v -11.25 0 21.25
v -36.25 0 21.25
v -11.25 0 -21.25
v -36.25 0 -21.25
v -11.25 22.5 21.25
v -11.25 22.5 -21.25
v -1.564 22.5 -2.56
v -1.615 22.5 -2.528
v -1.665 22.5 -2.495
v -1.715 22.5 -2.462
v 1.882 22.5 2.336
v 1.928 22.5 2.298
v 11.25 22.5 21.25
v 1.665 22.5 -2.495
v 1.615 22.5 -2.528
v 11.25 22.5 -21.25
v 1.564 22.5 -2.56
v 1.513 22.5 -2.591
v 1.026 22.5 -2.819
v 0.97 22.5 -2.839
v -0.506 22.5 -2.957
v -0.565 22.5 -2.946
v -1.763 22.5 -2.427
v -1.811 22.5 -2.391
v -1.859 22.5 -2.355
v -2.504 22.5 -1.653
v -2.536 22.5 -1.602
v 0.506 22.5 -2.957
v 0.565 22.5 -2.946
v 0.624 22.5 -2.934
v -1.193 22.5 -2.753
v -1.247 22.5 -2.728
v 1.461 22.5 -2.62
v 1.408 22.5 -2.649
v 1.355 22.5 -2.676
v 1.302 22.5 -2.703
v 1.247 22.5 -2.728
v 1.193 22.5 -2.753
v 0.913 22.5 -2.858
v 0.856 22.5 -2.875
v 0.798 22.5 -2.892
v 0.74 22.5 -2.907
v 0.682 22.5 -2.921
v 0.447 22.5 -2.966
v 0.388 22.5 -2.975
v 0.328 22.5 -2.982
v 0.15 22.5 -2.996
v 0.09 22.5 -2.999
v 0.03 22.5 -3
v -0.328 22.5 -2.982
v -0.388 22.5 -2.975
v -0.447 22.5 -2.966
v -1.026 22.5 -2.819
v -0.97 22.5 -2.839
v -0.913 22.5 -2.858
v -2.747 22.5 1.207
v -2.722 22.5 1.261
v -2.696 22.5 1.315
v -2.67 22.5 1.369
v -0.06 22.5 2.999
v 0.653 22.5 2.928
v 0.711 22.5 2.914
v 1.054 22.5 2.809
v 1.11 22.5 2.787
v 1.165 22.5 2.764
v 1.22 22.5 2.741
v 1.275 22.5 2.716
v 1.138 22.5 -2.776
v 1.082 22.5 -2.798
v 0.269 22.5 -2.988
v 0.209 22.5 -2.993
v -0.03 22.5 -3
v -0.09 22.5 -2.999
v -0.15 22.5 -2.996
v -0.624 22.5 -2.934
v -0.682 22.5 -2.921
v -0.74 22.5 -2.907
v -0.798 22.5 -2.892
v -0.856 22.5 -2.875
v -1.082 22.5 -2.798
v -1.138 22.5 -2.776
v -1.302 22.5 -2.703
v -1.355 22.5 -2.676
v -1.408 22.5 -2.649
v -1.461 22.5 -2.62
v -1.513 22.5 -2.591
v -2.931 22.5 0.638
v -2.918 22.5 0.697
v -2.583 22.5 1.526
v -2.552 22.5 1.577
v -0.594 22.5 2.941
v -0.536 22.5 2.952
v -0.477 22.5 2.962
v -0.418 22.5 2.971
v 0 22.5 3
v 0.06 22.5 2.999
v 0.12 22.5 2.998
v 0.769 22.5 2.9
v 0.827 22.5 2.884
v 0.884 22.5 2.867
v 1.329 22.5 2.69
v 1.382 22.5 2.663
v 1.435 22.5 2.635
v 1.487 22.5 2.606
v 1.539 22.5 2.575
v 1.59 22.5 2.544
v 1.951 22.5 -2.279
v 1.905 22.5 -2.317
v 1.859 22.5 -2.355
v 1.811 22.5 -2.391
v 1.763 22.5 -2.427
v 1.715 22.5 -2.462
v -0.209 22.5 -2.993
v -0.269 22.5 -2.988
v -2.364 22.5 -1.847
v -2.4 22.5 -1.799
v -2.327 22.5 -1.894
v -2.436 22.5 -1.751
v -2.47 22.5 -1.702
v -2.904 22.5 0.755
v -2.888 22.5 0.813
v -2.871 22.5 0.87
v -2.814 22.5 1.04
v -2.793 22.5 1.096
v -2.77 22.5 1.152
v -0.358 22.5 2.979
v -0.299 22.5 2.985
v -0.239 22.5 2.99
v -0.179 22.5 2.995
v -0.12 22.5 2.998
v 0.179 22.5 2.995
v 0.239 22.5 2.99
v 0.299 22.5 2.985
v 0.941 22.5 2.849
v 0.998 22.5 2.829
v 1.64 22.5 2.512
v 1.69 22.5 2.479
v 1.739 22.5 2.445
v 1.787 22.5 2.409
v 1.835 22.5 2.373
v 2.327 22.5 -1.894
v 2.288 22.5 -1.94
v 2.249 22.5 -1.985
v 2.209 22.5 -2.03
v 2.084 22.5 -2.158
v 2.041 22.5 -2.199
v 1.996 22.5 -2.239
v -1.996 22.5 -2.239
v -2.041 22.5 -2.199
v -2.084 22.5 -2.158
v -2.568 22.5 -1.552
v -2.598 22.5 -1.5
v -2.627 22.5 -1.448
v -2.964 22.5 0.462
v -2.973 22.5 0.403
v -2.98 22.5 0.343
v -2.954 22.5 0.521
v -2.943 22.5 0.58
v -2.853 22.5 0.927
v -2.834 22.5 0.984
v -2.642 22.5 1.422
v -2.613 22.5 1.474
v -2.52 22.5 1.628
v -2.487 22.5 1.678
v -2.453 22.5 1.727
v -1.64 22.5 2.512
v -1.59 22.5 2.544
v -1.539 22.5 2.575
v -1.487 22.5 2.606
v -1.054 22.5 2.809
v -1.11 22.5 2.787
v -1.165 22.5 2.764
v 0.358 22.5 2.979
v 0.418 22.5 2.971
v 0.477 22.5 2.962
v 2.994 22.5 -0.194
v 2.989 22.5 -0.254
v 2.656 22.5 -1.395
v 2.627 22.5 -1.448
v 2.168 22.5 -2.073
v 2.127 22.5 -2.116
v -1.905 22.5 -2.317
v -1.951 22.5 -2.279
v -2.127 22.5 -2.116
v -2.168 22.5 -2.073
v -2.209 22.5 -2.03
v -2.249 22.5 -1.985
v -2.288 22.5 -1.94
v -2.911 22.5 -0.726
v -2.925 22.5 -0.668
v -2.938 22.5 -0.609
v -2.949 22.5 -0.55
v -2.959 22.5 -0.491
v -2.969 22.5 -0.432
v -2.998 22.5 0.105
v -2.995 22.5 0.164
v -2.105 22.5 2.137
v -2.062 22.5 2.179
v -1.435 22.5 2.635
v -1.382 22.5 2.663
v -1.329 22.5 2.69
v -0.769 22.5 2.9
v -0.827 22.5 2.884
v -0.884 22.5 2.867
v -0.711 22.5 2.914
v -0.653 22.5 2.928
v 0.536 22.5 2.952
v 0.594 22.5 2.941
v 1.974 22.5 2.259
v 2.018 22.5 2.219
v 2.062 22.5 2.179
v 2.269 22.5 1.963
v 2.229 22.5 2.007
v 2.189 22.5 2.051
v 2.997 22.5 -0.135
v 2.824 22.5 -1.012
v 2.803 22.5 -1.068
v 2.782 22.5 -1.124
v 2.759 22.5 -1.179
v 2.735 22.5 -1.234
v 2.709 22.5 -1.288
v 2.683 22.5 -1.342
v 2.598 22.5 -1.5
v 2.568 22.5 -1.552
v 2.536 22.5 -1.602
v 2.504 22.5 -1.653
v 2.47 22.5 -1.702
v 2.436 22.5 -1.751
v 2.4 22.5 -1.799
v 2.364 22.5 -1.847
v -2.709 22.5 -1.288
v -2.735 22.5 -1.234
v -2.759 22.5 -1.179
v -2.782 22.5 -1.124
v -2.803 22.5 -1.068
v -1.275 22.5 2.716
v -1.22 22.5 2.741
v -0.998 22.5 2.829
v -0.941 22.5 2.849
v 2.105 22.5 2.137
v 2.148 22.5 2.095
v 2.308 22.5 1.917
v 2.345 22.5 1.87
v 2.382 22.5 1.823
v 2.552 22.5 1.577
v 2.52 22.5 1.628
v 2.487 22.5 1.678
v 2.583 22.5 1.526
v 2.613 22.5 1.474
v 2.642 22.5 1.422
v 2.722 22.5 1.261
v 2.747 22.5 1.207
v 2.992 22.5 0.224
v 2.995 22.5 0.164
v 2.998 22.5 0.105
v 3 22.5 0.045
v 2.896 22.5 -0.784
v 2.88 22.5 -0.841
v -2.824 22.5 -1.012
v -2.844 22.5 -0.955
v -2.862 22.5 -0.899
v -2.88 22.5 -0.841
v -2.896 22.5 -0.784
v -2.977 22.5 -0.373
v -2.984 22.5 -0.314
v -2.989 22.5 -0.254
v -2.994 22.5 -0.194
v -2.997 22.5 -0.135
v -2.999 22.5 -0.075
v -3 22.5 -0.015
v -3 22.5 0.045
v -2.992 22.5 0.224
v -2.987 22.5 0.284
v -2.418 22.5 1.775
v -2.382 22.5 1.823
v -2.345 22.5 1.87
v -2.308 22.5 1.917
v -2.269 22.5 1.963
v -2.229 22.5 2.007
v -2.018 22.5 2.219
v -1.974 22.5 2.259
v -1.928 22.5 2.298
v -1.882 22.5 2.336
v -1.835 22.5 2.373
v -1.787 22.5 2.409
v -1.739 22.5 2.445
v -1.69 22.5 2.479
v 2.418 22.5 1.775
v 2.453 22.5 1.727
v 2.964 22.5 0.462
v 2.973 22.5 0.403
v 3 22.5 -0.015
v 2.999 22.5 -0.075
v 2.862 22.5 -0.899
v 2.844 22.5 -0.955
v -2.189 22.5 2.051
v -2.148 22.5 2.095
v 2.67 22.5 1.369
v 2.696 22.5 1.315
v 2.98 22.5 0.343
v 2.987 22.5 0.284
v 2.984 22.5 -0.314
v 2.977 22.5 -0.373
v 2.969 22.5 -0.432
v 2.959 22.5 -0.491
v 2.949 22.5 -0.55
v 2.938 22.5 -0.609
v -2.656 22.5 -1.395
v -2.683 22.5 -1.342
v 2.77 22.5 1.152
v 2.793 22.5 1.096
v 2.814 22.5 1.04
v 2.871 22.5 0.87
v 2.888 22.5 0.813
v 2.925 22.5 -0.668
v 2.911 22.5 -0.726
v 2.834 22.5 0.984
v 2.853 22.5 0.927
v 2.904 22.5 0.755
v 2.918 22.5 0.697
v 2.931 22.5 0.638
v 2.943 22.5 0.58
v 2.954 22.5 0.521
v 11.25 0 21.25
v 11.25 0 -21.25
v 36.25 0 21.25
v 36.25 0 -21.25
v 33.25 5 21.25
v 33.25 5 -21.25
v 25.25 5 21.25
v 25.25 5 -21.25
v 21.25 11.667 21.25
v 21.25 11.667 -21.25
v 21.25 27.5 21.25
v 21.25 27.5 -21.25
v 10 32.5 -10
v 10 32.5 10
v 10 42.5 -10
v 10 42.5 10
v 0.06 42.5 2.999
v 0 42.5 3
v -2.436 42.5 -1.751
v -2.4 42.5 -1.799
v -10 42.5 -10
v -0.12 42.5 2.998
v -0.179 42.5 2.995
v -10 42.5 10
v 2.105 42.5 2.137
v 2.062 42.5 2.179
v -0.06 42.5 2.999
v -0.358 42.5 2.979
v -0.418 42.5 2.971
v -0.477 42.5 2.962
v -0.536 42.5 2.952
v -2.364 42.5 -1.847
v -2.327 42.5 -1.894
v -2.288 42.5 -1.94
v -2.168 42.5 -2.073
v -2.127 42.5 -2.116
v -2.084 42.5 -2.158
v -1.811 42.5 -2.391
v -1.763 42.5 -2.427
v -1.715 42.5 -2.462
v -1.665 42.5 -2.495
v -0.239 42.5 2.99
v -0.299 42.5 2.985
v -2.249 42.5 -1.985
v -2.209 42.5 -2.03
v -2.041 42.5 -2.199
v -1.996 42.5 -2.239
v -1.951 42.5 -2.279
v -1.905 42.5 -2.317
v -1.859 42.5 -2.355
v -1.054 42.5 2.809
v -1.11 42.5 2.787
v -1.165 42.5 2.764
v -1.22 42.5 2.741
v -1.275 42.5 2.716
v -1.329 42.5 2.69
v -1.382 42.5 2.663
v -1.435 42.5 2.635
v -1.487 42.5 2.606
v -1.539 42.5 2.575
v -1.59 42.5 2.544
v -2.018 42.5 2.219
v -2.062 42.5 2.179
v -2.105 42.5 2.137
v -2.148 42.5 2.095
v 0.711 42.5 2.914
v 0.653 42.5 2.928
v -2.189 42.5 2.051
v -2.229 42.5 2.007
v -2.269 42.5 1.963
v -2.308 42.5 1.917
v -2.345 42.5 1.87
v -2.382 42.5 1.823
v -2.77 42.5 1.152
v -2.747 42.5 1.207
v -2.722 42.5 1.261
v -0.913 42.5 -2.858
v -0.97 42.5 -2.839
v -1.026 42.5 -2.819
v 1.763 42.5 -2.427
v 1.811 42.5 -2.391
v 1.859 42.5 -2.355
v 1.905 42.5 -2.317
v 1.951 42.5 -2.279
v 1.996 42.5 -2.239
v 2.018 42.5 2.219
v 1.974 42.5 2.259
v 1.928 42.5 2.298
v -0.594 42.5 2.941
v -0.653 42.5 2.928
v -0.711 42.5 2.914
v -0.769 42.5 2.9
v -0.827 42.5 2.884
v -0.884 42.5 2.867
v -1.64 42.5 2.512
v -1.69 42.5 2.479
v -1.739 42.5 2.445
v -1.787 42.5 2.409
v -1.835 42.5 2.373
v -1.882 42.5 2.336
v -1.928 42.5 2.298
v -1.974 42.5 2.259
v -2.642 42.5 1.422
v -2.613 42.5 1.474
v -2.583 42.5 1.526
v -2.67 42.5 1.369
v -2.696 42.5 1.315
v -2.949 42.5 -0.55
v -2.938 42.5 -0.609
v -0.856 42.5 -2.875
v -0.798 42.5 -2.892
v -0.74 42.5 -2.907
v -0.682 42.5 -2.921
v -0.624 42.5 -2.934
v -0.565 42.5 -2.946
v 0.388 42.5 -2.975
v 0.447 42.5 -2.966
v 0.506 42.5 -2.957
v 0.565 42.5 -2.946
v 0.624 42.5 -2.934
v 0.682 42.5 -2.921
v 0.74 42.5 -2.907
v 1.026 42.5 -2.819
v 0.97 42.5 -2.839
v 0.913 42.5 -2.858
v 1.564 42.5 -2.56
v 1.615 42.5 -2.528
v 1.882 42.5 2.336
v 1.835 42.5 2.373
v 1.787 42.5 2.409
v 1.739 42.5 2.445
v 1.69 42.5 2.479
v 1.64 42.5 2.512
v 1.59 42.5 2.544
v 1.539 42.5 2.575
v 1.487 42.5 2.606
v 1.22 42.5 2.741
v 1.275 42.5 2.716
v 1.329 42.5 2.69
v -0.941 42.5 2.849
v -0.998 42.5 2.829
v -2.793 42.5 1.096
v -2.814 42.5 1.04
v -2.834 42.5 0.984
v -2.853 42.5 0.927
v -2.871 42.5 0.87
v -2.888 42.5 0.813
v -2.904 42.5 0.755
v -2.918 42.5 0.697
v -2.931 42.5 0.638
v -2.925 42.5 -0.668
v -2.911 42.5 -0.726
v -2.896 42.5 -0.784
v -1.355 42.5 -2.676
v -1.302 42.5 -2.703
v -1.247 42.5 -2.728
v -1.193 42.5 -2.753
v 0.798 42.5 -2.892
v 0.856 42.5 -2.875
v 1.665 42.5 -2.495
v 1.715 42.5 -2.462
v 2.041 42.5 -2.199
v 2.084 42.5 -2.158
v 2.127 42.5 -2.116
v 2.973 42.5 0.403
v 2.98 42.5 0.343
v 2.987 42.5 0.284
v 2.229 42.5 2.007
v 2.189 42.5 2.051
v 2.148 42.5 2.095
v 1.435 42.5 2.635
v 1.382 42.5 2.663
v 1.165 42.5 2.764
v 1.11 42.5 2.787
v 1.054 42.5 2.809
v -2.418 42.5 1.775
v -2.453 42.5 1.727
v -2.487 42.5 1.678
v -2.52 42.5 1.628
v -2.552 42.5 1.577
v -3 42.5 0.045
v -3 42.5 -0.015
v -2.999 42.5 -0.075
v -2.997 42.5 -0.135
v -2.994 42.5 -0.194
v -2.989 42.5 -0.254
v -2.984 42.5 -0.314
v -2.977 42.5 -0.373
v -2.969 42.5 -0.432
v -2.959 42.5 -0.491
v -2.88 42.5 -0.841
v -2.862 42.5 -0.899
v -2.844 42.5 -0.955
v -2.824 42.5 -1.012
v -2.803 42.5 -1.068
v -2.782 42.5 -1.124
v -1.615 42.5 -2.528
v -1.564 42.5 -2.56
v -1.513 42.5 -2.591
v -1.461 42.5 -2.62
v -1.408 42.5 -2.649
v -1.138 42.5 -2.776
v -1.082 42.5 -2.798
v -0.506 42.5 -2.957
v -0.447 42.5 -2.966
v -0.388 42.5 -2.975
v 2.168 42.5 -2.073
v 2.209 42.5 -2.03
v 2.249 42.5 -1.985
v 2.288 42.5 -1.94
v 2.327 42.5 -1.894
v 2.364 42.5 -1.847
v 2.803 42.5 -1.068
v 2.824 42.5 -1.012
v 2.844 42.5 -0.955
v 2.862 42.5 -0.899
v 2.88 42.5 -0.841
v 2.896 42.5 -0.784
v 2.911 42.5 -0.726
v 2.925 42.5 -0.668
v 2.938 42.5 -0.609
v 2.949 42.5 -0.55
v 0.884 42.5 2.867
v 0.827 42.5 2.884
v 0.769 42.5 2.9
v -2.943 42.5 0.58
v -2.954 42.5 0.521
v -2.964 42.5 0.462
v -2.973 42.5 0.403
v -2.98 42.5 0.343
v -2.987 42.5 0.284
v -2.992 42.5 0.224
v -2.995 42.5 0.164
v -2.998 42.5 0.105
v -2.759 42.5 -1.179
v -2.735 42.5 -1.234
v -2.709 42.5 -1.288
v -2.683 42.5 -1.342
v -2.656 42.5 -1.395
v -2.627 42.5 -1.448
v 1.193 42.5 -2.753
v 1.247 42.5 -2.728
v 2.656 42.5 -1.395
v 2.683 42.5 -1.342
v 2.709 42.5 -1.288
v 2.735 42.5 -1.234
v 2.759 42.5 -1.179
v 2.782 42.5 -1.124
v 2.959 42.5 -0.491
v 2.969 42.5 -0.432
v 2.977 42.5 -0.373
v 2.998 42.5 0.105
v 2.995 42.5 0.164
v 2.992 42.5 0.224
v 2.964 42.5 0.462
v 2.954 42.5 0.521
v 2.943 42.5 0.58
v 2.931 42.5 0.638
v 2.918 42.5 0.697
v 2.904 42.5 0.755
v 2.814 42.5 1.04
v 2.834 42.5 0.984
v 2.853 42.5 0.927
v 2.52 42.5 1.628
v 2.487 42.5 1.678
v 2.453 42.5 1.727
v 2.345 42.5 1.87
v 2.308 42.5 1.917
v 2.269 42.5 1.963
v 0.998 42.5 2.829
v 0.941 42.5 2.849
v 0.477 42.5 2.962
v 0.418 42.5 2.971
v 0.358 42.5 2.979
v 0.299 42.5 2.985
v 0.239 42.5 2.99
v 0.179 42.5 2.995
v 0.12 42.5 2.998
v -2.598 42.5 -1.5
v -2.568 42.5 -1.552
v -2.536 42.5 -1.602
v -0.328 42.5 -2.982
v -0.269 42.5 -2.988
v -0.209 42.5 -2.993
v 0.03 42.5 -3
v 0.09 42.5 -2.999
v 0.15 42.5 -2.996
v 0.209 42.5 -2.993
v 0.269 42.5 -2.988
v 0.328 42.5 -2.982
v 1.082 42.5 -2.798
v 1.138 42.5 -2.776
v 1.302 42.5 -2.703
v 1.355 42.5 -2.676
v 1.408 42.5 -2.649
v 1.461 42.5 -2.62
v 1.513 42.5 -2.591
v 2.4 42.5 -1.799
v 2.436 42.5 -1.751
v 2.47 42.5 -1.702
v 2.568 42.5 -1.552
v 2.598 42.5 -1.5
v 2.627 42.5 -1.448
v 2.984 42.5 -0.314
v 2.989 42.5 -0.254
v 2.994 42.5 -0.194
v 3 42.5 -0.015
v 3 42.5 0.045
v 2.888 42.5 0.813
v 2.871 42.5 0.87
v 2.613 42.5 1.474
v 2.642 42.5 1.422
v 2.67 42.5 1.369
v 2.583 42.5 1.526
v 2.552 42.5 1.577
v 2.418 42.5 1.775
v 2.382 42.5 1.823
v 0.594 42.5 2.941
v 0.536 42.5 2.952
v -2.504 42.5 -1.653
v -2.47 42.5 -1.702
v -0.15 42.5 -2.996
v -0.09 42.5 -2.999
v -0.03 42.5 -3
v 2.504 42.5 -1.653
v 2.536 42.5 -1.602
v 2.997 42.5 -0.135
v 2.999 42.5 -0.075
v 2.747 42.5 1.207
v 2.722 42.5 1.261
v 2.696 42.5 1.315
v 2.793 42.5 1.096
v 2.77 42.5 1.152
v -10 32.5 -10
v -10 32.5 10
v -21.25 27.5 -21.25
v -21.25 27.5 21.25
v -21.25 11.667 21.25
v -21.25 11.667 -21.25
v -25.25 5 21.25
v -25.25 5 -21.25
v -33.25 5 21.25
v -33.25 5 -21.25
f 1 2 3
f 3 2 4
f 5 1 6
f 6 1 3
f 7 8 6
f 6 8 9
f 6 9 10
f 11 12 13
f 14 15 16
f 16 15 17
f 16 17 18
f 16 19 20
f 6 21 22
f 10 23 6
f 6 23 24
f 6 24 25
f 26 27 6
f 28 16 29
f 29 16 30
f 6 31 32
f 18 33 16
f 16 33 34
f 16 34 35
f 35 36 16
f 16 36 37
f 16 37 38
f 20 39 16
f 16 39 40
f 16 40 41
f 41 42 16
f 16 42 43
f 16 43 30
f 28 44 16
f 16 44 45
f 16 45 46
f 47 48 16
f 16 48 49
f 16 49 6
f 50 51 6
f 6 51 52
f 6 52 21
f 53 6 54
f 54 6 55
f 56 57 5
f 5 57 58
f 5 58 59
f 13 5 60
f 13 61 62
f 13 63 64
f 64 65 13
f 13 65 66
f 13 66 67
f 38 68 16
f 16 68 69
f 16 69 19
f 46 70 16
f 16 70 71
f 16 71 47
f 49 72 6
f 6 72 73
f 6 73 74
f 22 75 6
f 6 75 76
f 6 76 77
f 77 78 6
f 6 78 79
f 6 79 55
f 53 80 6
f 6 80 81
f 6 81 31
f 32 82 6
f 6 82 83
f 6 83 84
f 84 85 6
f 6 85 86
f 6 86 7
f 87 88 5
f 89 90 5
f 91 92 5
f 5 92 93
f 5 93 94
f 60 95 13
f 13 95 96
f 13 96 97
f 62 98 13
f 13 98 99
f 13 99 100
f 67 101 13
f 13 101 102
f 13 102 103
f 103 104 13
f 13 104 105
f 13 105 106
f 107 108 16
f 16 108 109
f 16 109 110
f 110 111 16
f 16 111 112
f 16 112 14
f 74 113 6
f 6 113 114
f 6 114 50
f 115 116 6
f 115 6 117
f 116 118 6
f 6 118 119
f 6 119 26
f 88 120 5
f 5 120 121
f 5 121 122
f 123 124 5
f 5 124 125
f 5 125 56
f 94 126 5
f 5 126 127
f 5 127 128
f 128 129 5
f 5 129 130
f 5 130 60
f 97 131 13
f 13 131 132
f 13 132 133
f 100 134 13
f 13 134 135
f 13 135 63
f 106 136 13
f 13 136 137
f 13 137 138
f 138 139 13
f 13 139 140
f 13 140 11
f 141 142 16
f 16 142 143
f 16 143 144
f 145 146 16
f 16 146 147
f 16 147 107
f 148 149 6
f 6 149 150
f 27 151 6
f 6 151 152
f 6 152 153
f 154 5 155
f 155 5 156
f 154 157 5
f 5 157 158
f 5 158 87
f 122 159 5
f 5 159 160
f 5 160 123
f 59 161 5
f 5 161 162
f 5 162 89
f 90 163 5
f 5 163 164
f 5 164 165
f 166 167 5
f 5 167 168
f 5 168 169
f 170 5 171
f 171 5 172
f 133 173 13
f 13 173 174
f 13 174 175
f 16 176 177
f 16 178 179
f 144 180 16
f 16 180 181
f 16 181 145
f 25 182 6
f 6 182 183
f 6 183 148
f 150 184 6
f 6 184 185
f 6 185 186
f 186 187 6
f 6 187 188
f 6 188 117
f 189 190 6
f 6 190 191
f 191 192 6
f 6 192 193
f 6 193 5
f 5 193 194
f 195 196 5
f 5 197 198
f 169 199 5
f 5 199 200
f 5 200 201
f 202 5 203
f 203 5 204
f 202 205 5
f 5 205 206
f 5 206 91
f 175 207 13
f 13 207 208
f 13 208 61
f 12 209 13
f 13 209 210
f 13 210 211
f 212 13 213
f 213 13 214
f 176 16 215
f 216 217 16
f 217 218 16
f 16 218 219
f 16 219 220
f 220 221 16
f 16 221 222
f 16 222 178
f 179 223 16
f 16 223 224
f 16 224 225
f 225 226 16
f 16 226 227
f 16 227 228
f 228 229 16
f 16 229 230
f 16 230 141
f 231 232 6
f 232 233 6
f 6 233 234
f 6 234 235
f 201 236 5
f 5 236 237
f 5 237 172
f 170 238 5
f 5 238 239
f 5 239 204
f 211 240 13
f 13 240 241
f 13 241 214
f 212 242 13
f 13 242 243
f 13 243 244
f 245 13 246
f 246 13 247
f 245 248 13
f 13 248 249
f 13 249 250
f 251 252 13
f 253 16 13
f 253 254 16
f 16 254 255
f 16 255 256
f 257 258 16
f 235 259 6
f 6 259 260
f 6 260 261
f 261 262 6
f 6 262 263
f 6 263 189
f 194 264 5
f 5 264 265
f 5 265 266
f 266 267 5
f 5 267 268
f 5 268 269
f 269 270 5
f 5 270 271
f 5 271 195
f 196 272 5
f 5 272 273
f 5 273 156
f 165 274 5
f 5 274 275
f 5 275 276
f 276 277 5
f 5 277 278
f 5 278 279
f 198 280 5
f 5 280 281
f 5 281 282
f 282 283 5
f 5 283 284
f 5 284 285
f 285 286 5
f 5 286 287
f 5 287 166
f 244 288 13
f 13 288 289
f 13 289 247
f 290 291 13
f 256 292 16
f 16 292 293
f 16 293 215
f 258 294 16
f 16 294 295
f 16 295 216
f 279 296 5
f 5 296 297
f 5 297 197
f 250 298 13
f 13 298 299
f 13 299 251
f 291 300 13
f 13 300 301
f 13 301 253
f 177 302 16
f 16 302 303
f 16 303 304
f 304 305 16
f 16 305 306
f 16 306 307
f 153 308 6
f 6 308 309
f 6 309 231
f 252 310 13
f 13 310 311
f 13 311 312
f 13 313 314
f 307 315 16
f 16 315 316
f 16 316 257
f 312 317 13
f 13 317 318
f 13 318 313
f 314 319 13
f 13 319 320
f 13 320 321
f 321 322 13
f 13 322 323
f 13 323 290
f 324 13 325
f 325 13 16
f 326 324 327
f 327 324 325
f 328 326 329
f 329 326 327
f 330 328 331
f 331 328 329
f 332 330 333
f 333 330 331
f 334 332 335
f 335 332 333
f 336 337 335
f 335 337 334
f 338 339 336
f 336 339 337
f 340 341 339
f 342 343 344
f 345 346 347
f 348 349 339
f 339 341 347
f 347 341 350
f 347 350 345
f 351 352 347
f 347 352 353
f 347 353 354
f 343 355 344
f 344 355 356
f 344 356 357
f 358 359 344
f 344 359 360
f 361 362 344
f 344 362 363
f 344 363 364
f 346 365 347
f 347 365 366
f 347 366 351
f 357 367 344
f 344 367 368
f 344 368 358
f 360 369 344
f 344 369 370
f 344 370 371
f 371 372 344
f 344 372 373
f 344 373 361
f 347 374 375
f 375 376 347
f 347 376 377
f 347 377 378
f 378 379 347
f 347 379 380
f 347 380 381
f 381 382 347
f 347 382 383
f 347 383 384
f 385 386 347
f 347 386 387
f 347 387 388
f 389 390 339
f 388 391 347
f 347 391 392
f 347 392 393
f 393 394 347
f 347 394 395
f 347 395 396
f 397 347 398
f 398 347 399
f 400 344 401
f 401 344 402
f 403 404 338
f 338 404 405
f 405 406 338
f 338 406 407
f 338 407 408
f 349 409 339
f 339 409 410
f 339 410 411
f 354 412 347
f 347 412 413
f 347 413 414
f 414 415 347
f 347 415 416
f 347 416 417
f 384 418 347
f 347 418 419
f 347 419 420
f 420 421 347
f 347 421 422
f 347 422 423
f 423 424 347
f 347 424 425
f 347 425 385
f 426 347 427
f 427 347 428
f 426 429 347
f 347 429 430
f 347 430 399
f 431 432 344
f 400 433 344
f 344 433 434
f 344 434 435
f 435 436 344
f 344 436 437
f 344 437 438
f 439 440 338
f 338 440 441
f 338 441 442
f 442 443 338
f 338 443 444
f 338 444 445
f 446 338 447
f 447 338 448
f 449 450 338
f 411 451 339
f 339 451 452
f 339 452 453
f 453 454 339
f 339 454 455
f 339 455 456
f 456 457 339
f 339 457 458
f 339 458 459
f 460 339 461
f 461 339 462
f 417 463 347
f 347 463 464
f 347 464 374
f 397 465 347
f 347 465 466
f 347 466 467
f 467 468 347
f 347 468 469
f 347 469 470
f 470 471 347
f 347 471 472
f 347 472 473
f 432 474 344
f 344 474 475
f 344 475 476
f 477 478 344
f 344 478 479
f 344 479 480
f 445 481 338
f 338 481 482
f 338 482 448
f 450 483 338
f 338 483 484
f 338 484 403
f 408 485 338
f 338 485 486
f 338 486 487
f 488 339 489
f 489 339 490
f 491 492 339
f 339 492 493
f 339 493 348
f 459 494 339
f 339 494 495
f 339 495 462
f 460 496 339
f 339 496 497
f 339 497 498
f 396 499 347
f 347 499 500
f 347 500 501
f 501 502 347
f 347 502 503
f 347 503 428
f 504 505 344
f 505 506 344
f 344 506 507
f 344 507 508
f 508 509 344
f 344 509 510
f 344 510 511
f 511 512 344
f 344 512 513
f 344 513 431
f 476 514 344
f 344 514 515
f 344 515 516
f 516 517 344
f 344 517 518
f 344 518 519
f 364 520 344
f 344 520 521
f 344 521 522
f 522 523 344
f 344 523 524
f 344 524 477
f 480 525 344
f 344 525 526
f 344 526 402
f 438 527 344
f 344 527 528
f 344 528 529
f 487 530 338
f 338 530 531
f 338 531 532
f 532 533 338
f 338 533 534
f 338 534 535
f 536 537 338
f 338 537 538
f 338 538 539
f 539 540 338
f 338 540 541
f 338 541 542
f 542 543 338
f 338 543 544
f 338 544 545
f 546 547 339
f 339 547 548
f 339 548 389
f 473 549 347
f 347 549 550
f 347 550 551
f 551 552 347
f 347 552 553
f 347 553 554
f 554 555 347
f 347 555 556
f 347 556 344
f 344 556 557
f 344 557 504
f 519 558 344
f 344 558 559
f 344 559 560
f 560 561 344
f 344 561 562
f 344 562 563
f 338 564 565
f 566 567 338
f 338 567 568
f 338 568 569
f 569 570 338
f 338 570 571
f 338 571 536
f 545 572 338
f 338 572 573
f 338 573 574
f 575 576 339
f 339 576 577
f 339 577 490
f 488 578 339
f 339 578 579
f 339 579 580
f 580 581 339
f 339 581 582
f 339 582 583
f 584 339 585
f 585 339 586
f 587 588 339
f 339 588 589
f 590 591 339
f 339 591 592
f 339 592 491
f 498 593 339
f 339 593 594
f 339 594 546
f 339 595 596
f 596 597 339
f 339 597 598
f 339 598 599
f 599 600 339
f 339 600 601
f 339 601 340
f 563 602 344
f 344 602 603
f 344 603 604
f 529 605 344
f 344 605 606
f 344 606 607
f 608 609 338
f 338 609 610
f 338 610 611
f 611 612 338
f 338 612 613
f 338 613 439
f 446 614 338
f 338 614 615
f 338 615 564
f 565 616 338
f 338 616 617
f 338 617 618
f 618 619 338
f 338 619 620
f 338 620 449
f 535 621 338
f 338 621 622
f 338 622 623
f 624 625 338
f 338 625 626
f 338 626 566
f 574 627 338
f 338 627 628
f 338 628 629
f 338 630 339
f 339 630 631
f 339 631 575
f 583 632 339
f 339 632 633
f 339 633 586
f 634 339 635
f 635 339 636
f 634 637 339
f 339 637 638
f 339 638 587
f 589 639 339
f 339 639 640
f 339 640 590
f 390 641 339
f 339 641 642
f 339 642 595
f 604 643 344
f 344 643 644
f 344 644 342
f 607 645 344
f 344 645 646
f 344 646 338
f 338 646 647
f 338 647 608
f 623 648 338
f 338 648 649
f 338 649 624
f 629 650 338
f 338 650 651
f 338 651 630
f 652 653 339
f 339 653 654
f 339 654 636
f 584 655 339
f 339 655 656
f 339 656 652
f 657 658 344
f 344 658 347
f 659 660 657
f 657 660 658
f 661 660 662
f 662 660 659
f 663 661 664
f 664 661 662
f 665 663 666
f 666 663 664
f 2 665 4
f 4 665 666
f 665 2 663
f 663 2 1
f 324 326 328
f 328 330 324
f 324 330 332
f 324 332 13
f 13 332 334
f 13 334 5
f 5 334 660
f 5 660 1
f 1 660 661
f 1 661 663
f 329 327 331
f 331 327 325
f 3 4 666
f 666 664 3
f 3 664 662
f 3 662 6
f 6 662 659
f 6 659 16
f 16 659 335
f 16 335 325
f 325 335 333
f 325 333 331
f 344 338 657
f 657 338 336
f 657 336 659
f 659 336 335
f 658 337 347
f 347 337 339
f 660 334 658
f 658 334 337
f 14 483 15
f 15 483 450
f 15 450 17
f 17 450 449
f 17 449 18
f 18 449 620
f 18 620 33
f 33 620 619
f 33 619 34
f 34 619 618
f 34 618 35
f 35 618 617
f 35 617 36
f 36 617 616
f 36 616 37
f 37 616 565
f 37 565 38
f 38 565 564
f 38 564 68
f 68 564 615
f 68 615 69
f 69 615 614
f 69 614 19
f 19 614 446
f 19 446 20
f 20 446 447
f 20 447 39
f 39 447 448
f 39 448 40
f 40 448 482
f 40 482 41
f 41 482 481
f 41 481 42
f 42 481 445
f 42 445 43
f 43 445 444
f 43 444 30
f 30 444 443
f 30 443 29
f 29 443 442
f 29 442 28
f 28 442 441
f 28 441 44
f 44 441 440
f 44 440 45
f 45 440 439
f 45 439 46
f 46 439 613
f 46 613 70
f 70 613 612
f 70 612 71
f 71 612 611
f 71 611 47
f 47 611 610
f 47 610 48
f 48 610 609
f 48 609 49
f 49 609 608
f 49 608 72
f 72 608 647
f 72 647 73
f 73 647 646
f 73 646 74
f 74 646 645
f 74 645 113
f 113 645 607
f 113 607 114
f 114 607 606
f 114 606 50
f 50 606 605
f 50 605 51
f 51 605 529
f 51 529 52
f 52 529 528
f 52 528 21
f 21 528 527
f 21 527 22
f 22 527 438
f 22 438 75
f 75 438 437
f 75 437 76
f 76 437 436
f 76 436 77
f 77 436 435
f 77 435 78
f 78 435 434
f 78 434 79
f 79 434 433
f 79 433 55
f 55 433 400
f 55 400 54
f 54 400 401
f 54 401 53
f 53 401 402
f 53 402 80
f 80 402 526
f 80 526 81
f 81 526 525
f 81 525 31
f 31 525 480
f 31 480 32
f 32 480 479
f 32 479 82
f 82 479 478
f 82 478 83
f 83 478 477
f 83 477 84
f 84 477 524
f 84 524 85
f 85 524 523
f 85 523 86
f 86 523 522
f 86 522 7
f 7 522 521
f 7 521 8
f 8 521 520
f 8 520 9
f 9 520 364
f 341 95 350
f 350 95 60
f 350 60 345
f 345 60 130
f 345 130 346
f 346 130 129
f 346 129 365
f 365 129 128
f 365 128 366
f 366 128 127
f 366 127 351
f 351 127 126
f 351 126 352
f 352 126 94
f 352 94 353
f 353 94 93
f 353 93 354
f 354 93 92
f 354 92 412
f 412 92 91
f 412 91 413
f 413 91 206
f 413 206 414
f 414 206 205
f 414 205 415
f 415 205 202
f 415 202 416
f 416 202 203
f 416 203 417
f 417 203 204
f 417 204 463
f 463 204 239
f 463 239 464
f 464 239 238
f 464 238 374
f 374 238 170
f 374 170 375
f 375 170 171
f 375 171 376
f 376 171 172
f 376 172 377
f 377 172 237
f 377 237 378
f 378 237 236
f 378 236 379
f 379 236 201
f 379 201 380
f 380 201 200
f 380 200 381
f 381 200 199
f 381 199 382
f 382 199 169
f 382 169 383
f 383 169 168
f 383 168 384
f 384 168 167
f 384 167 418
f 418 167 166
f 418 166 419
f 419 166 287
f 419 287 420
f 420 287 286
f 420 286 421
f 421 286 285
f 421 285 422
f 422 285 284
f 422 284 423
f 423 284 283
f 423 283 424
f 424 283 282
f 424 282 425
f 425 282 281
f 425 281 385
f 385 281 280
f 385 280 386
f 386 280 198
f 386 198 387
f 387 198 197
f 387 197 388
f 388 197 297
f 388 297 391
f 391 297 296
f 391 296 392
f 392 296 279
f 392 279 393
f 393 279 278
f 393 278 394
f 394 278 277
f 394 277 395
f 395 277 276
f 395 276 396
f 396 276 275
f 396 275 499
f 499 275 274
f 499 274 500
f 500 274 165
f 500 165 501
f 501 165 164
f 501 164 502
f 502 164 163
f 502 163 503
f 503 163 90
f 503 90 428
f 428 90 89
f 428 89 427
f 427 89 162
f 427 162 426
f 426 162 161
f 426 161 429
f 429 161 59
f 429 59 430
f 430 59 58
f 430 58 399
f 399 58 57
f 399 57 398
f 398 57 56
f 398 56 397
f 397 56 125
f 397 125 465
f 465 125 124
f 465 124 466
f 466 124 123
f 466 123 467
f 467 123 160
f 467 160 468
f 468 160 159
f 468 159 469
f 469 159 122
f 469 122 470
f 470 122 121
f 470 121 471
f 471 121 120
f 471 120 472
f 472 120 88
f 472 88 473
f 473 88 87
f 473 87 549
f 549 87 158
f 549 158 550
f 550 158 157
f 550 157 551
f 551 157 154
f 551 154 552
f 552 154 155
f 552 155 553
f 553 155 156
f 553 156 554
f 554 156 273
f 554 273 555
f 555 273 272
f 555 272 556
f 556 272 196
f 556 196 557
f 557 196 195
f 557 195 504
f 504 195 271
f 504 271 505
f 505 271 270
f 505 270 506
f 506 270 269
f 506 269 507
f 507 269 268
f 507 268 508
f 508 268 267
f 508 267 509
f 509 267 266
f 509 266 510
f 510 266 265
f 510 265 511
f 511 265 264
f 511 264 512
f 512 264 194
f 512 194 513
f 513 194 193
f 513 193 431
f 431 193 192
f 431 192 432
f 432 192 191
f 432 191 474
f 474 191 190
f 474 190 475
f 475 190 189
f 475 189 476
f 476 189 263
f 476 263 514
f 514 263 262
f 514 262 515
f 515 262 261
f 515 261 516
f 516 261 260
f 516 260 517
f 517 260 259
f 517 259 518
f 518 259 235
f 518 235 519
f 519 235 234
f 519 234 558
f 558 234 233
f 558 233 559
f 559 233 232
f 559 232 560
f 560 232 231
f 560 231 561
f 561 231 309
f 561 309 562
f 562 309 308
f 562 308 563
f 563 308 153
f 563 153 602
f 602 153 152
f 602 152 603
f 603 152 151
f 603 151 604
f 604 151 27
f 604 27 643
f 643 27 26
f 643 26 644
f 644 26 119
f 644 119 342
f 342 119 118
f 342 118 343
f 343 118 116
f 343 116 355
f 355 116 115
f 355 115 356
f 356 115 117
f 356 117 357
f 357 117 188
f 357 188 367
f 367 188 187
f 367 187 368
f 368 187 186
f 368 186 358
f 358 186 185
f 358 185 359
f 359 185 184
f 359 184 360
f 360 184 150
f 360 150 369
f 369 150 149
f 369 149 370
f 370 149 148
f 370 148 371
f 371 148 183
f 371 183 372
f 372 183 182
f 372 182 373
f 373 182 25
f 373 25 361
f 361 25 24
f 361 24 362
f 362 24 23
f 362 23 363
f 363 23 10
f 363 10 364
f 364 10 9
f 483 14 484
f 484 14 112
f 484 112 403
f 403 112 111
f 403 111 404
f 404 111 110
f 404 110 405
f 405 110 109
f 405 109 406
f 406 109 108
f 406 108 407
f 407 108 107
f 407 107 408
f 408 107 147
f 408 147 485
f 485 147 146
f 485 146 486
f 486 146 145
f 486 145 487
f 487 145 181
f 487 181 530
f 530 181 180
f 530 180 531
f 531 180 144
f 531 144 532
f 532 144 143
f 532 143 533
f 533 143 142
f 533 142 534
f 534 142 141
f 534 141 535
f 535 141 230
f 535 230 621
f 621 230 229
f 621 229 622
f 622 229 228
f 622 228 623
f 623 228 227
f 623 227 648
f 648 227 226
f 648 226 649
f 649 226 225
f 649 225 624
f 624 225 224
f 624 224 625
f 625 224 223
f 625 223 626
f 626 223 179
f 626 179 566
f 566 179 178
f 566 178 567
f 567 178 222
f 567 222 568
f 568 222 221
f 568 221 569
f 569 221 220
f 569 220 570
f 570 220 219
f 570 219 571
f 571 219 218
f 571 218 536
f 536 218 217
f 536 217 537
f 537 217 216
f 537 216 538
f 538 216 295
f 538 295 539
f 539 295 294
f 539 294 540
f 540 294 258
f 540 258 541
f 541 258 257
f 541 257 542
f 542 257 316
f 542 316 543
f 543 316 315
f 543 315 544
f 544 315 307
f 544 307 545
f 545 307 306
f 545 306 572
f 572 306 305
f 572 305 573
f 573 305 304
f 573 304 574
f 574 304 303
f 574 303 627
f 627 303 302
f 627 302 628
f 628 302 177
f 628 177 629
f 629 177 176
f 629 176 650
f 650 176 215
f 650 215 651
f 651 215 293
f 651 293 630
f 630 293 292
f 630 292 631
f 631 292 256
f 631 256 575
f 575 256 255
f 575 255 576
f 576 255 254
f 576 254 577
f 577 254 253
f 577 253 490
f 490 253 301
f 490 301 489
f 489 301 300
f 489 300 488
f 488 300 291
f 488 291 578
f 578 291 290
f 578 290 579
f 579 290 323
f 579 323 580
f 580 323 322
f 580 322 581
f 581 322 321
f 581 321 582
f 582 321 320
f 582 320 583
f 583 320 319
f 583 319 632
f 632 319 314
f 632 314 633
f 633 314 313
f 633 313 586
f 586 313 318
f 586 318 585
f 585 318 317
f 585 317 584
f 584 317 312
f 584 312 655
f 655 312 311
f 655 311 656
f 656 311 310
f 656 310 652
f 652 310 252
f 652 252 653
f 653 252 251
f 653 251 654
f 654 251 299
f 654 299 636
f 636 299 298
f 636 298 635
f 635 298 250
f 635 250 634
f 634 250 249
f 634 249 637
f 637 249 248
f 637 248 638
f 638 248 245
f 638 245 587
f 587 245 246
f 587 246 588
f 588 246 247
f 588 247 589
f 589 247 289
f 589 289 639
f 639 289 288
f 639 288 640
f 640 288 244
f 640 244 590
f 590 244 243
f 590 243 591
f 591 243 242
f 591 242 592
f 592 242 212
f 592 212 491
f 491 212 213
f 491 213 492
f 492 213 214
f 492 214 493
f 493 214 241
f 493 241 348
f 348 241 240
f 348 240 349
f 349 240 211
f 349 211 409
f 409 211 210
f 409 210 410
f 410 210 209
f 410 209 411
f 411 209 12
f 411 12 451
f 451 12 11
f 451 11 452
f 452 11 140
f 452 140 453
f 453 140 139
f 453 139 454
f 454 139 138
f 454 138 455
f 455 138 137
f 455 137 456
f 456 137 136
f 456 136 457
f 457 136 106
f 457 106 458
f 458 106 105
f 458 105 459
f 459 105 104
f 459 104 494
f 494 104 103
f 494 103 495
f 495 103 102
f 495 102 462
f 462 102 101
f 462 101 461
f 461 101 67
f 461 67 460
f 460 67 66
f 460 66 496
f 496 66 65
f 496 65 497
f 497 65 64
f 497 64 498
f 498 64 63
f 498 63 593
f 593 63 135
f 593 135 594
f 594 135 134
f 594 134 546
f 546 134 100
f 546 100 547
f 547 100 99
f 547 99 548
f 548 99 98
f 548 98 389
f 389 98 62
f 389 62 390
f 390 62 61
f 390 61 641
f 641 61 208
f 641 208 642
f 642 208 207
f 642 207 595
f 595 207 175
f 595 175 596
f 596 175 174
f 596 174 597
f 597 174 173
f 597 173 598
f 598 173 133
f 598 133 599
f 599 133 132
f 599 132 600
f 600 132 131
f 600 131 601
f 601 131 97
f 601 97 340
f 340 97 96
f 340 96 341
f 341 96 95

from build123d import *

# Parameters (mm, degrees)
BOSS_EXTRUDE1_DEPTH     = 21.25
CUT_EXTRUDE1_DEPTH      = 60.765165439
CUT_EXTRUDE1_DEPTH_BACK = 60.765165439
SKETCH3_R               = 3
CUT_EXTRUDE2_DEPTH      = 60.765165439


with BuildPart() as part:
    # Sketch1 → Boss-Extrude1 (new, symmetric)
    with BuildSketch(Plane.XY):
        Polygon((-11.25, 0), (-11.25, 22.5), (11.25, 22.5), (11.25, 0), (36.25, 0), (33.25, 5), (25.25, 5), (21.25, 11.666666667), (21.25, 27.5), (10, 32.5), (10, 42.5), (-10, 42.5), (-10, 32.5), (-21.25, 27.5), (-21.25, 11.666666667), (-25.25, 5), (-33.25, 5), (-36.25, 0), align=None)
    extrude(amount=BOSS_EXTRUDE1_DEPTH, both=True)

    # Sketch2 → Cut-Extrude1 (cut, two sides: drawn at the far end of the back side and taken through both)
    with BuildSketch(Plane(origin=(0, 0, 0), x_dir=(0, 0, -1), z_dir=(1, 0, 0)).offset(-CUT_EXTRUDE1_DEPTH_BACK)):
        Polygon((21.25, 27.5), (10, 32.5), (10, 42.5), (21.25, 42.5), align=None)
        Polygon((-10, 42.5), (-10, 32.5), (-21.25, 27.5), (-21.25, 42.5), align=None)
    extrude(amount=CUT_EXTRUDE1_DEPTH + CUT_EXTRUDE1_DEPTH_BACK, mode=Mode.SUBTRACT)

    # Sketch3 → Cut-Extrude2 (cut, through all)
    with BuildSketch(Plane(origin=(0, 42.5, 0), x_dir=(1, 0, 0), z_dir=(0, 1, 0))):
        with Locations(Location((0, 0, 0), (0, 0, 270))):
            Circle(SKETCH3_R)
    extrude(amount=-CUT_EXTRUDE2_DEPTH, mode=Mode.SUBTRACT)


solid = part.part
